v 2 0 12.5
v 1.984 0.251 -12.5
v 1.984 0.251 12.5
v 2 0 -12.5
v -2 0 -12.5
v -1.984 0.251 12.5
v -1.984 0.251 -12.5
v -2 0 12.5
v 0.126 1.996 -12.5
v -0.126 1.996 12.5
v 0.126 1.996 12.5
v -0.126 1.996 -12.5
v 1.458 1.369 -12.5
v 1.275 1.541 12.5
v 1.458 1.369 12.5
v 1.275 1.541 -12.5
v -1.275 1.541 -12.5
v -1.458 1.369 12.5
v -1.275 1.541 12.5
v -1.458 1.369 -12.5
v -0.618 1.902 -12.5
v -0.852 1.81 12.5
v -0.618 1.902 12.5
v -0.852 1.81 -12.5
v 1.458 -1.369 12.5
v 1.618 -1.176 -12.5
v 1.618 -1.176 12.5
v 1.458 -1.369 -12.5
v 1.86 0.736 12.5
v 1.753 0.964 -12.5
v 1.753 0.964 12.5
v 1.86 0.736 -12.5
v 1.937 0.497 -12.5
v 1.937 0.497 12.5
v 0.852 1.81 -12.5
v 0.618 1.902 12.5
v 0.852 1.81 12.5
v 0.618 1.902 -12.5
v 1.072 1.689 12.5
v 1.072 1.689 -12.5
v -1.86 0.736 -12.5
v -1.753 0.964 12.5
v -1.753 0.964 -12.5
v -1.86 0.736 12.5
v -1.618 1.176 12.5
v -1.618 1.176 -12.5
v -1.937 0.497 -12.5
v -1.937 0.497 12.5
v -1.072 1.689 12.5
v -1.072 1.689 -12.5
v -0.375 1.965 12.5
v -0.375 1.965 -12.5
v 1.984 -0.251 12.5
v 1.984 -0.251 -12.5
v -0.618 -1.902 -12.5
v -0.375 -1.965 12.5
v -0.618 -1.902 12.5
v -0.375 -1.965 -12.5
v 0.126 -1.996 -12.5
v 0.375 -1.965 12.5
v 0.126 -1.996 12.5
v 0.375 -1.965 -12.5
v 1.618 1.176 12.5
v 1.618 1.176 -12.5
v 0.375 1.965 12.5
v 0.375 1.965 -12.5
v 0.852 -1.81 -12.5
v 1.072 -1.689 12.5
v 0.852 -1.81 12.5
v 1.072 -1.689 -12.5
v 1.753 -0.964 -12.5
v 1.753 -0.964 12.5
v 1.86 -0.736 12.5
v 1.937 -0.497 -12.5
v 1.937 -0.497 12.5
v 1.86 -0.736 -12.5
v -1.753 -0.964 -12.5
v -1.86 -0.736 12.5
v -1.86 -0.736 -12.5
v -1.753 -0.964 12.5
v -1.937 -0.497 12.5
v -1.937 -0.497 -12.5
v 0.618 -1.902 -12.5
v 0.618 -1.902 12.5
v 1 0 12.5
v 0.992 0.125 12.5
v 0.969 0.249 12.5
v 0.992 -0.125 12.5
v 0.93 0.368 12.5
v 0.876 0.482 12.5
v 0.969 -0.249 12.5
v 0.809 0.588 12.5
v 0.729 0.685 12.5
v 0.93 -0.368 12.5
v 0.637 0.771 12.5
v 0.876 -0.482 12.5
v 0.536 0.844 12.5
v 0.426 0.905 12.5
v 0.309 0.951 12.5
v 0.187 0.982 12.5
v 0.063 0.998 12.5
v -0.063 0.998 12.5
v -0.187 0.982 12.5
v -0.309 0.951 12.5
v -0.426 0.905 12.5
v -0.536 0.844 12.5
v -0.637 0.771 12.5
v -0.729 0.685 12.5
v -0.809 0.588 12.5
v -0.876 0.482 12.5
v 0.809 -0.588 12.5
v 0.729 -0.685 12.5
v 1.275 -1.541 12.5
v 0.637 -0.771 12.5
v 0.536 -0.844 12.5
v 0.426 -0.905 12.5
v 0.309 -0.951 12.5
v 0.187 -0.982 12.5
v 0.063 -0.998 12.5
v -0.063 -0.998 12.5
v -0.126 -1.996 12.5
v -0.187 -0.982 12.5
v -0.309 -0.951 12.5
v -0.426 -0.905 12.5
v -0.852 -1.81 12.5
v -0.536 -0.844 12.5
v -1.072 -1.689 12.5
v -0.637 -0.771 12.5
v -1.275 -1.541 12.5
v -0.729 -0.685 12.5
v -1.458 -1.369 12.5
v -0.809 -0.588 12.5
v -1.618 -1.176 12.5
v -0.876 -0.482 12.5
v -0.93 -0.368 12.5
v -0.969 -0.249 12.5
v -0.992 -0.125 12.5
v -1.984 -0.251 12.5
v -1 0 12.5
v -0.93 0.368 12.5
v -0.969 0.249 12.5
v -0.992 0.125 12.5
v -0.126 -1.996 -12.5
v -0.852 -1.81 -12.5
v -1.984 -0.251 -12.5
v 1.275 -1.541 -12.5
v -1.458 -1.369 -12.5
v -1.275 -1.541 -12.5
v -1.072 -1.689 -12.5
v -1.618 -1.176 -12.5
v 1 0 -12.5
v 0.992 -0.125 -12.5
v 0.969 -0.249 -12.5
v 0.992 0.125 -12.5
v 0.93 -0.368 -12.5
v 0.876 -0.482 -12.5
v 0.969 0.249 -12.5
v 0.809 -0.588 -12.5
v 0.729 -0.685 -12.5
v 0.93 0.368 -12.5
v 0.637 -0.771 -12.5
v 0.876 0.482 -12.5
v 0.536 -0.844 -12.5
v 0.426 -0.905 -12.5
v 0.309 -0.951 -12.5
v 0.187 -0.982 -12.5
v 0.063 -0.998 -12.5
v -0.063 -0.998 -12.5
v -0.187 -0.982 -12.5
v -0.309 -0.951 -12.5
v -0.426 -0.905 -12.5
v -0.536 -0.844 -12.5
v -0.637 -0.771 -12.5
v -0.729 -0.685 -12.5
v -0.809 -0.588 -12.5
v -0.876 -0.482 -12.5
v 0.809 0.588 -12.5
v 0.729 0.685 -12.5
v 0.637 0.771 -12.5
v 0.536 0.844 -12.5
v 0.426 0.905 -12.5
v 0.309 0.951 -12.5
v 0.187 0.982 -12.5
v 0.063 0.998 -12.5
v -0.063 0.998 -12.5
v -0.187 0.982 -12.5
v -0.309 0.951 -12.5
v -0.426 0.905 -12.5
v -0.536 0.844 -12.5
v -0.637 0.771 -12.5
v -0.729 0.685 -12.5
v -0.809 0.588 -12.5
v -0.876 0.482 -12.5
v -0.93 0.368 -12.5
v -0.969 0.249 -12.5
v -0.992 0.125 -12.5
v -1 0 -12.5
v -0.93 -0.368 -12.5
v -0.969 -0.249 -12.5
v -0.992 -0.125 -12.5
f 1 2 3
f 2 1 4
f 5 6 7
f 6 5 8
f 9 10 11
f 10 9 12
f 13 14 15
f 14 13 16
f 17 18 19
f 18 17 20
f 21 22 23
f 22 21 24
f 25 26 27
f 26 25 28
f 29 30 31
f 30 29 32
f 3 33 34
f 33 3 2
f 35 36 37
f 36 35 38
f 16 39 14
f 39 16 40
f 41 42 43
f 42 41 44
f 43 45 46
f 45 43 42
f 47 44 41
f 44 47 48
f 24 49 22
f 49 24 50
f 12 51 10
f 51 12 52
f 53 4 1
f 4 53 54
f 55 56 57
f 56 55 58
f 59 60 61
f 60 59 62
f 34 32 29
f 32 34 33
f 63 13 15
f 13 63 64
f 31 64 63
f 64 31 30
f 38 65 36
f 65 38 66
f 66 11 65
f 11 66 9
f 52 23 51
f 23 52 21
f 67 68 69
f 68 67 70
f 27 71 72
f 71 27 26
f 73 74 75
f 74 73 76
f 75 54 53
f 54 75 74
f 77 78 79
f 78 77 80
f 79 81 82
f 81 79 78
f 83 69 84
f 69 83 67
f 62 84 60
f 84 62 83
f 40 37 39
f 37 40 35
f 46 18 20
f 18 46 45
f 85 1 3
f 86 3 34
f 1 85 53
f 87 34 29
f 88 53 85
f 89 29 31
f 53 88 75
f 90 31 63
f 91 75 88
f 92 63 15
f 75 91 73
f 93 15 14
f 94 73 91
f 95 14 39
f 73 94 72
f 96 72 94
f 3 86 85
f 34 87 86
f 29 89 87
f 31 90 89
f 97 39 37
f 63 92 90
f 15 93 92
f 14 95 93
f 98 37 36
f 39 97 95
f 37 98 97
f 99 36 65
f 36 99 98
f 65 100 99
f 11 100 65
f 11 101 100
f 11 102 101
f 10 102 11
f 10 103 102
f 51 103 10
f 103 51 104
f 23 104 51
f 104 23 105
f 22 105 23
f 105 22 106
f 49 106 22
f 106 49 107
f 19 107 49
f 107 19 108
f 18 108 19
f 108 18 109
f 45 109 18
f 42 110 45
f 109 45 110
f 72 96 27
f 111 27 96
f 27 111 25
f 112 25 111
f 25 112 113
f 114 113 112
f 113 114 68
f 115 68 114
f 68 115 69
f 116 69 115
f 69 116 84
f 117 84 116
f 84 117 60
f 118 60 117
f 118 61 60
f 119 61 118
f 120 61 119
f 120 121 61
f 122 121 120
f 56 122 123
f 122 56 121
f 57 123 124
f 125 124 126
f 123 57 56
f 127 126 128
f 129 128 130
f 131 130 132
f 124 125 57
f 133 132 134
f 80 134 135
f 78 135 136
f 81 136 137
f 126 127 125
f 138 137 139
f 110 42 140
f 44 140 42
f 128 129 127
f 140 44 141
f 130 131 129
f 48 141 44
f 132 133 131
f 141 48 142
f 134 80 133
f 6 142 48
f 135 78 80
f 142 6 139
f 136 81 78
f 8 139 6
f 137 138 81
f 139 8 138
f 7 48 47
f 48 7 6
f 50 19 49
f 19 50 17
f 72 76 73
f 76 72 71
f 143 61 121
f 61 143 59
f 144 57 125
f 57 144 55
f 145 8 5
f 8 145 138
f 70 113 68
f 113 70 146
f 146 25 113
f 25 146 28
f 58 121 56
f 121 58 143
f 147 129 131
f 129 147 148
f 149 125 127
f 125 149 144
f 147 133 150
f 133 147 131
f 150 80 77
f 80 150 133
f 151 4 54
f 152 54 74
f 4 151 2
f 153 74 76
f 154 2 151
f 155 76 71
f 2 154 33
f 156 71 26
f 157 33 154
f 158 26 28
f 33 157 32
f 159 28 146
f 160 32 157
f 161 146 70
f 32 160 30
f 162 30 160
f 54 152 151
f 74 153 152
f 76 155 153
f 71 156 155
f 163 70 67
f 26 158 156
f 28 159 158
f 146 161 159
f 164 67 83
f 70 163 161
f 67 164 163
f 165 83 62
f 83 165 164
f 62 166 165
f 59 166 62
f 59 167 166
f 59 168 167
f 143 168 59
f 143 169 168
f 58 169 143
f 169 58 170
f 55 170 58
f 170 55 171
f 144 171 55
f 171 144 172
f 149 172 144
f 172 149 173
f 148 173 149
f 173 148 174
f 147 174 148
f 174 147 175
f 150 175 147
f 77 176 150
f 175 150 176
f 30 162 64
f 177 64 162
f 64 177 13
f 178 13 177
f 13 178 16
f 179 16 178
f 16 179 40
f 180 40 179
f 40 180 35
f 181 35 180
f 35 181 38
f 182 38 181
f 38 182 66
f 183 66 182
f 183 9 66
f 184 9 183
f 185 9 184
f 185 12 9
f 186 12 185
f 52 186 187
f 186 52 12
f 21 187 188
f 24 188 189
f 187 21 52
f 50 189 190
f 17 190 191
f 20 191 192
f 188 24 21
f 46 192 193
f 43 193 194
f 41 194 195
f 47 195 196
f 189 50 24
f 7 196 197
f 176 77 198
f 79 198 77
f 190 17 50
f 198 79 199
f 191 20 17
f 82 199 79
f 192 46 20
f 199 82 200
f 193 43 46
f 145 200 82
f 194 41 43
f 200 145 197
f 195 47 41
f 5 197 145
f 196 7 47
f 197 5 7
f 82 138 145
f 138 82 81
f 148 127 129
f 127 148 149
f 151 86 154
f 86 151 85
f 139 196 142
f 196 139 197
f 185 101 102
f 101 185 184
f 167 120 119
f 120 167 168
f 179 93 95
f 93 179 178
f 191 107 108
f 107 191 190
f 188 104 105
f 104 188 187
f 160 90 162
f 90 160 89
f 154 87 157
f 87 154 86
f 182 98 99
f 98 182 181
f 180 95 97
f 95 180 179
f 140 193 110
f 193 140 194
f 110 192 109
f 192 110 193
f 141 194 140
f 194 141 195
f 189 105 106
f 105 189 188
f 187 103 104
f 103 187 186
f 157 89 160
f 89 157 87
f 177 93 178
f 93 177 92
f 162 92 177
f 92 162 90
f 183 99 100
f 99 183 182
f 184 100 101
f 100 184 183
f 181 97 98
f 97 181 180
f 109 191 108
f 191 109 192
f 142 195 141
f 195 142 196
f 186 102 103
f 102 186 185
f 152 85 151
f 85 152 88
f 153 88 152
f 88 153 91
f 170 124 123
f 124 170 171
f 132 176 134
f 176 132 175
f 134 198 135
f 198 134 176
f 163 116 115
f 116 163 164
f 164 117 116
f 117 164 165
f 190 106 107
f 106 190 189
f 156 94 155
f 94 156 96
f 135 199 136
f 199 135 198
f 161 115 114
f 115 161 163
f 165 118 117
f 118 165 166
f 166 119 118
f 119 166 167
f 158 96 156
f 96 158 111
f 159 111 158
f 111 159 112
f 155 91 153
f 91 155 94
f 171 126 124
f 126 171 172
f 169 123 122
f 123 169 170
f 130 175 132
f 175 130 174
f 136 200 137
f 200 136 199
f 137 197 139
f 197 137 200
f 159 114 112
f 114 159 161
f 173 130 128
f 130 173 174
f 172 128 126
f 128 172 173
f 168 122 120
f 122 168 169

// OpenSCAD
$fn = 50;


difference() {
	union() {
		translate(v = [0, 0, -12.5000000000]) {
			cylinder(h = 25, r = 2.0000000000);
		}
	}
	union() {
		translate(v = [0, 0, -100.0000000000]) {
			cylinder(h = 200, r = 1.0000000000);
		}
	}
}
